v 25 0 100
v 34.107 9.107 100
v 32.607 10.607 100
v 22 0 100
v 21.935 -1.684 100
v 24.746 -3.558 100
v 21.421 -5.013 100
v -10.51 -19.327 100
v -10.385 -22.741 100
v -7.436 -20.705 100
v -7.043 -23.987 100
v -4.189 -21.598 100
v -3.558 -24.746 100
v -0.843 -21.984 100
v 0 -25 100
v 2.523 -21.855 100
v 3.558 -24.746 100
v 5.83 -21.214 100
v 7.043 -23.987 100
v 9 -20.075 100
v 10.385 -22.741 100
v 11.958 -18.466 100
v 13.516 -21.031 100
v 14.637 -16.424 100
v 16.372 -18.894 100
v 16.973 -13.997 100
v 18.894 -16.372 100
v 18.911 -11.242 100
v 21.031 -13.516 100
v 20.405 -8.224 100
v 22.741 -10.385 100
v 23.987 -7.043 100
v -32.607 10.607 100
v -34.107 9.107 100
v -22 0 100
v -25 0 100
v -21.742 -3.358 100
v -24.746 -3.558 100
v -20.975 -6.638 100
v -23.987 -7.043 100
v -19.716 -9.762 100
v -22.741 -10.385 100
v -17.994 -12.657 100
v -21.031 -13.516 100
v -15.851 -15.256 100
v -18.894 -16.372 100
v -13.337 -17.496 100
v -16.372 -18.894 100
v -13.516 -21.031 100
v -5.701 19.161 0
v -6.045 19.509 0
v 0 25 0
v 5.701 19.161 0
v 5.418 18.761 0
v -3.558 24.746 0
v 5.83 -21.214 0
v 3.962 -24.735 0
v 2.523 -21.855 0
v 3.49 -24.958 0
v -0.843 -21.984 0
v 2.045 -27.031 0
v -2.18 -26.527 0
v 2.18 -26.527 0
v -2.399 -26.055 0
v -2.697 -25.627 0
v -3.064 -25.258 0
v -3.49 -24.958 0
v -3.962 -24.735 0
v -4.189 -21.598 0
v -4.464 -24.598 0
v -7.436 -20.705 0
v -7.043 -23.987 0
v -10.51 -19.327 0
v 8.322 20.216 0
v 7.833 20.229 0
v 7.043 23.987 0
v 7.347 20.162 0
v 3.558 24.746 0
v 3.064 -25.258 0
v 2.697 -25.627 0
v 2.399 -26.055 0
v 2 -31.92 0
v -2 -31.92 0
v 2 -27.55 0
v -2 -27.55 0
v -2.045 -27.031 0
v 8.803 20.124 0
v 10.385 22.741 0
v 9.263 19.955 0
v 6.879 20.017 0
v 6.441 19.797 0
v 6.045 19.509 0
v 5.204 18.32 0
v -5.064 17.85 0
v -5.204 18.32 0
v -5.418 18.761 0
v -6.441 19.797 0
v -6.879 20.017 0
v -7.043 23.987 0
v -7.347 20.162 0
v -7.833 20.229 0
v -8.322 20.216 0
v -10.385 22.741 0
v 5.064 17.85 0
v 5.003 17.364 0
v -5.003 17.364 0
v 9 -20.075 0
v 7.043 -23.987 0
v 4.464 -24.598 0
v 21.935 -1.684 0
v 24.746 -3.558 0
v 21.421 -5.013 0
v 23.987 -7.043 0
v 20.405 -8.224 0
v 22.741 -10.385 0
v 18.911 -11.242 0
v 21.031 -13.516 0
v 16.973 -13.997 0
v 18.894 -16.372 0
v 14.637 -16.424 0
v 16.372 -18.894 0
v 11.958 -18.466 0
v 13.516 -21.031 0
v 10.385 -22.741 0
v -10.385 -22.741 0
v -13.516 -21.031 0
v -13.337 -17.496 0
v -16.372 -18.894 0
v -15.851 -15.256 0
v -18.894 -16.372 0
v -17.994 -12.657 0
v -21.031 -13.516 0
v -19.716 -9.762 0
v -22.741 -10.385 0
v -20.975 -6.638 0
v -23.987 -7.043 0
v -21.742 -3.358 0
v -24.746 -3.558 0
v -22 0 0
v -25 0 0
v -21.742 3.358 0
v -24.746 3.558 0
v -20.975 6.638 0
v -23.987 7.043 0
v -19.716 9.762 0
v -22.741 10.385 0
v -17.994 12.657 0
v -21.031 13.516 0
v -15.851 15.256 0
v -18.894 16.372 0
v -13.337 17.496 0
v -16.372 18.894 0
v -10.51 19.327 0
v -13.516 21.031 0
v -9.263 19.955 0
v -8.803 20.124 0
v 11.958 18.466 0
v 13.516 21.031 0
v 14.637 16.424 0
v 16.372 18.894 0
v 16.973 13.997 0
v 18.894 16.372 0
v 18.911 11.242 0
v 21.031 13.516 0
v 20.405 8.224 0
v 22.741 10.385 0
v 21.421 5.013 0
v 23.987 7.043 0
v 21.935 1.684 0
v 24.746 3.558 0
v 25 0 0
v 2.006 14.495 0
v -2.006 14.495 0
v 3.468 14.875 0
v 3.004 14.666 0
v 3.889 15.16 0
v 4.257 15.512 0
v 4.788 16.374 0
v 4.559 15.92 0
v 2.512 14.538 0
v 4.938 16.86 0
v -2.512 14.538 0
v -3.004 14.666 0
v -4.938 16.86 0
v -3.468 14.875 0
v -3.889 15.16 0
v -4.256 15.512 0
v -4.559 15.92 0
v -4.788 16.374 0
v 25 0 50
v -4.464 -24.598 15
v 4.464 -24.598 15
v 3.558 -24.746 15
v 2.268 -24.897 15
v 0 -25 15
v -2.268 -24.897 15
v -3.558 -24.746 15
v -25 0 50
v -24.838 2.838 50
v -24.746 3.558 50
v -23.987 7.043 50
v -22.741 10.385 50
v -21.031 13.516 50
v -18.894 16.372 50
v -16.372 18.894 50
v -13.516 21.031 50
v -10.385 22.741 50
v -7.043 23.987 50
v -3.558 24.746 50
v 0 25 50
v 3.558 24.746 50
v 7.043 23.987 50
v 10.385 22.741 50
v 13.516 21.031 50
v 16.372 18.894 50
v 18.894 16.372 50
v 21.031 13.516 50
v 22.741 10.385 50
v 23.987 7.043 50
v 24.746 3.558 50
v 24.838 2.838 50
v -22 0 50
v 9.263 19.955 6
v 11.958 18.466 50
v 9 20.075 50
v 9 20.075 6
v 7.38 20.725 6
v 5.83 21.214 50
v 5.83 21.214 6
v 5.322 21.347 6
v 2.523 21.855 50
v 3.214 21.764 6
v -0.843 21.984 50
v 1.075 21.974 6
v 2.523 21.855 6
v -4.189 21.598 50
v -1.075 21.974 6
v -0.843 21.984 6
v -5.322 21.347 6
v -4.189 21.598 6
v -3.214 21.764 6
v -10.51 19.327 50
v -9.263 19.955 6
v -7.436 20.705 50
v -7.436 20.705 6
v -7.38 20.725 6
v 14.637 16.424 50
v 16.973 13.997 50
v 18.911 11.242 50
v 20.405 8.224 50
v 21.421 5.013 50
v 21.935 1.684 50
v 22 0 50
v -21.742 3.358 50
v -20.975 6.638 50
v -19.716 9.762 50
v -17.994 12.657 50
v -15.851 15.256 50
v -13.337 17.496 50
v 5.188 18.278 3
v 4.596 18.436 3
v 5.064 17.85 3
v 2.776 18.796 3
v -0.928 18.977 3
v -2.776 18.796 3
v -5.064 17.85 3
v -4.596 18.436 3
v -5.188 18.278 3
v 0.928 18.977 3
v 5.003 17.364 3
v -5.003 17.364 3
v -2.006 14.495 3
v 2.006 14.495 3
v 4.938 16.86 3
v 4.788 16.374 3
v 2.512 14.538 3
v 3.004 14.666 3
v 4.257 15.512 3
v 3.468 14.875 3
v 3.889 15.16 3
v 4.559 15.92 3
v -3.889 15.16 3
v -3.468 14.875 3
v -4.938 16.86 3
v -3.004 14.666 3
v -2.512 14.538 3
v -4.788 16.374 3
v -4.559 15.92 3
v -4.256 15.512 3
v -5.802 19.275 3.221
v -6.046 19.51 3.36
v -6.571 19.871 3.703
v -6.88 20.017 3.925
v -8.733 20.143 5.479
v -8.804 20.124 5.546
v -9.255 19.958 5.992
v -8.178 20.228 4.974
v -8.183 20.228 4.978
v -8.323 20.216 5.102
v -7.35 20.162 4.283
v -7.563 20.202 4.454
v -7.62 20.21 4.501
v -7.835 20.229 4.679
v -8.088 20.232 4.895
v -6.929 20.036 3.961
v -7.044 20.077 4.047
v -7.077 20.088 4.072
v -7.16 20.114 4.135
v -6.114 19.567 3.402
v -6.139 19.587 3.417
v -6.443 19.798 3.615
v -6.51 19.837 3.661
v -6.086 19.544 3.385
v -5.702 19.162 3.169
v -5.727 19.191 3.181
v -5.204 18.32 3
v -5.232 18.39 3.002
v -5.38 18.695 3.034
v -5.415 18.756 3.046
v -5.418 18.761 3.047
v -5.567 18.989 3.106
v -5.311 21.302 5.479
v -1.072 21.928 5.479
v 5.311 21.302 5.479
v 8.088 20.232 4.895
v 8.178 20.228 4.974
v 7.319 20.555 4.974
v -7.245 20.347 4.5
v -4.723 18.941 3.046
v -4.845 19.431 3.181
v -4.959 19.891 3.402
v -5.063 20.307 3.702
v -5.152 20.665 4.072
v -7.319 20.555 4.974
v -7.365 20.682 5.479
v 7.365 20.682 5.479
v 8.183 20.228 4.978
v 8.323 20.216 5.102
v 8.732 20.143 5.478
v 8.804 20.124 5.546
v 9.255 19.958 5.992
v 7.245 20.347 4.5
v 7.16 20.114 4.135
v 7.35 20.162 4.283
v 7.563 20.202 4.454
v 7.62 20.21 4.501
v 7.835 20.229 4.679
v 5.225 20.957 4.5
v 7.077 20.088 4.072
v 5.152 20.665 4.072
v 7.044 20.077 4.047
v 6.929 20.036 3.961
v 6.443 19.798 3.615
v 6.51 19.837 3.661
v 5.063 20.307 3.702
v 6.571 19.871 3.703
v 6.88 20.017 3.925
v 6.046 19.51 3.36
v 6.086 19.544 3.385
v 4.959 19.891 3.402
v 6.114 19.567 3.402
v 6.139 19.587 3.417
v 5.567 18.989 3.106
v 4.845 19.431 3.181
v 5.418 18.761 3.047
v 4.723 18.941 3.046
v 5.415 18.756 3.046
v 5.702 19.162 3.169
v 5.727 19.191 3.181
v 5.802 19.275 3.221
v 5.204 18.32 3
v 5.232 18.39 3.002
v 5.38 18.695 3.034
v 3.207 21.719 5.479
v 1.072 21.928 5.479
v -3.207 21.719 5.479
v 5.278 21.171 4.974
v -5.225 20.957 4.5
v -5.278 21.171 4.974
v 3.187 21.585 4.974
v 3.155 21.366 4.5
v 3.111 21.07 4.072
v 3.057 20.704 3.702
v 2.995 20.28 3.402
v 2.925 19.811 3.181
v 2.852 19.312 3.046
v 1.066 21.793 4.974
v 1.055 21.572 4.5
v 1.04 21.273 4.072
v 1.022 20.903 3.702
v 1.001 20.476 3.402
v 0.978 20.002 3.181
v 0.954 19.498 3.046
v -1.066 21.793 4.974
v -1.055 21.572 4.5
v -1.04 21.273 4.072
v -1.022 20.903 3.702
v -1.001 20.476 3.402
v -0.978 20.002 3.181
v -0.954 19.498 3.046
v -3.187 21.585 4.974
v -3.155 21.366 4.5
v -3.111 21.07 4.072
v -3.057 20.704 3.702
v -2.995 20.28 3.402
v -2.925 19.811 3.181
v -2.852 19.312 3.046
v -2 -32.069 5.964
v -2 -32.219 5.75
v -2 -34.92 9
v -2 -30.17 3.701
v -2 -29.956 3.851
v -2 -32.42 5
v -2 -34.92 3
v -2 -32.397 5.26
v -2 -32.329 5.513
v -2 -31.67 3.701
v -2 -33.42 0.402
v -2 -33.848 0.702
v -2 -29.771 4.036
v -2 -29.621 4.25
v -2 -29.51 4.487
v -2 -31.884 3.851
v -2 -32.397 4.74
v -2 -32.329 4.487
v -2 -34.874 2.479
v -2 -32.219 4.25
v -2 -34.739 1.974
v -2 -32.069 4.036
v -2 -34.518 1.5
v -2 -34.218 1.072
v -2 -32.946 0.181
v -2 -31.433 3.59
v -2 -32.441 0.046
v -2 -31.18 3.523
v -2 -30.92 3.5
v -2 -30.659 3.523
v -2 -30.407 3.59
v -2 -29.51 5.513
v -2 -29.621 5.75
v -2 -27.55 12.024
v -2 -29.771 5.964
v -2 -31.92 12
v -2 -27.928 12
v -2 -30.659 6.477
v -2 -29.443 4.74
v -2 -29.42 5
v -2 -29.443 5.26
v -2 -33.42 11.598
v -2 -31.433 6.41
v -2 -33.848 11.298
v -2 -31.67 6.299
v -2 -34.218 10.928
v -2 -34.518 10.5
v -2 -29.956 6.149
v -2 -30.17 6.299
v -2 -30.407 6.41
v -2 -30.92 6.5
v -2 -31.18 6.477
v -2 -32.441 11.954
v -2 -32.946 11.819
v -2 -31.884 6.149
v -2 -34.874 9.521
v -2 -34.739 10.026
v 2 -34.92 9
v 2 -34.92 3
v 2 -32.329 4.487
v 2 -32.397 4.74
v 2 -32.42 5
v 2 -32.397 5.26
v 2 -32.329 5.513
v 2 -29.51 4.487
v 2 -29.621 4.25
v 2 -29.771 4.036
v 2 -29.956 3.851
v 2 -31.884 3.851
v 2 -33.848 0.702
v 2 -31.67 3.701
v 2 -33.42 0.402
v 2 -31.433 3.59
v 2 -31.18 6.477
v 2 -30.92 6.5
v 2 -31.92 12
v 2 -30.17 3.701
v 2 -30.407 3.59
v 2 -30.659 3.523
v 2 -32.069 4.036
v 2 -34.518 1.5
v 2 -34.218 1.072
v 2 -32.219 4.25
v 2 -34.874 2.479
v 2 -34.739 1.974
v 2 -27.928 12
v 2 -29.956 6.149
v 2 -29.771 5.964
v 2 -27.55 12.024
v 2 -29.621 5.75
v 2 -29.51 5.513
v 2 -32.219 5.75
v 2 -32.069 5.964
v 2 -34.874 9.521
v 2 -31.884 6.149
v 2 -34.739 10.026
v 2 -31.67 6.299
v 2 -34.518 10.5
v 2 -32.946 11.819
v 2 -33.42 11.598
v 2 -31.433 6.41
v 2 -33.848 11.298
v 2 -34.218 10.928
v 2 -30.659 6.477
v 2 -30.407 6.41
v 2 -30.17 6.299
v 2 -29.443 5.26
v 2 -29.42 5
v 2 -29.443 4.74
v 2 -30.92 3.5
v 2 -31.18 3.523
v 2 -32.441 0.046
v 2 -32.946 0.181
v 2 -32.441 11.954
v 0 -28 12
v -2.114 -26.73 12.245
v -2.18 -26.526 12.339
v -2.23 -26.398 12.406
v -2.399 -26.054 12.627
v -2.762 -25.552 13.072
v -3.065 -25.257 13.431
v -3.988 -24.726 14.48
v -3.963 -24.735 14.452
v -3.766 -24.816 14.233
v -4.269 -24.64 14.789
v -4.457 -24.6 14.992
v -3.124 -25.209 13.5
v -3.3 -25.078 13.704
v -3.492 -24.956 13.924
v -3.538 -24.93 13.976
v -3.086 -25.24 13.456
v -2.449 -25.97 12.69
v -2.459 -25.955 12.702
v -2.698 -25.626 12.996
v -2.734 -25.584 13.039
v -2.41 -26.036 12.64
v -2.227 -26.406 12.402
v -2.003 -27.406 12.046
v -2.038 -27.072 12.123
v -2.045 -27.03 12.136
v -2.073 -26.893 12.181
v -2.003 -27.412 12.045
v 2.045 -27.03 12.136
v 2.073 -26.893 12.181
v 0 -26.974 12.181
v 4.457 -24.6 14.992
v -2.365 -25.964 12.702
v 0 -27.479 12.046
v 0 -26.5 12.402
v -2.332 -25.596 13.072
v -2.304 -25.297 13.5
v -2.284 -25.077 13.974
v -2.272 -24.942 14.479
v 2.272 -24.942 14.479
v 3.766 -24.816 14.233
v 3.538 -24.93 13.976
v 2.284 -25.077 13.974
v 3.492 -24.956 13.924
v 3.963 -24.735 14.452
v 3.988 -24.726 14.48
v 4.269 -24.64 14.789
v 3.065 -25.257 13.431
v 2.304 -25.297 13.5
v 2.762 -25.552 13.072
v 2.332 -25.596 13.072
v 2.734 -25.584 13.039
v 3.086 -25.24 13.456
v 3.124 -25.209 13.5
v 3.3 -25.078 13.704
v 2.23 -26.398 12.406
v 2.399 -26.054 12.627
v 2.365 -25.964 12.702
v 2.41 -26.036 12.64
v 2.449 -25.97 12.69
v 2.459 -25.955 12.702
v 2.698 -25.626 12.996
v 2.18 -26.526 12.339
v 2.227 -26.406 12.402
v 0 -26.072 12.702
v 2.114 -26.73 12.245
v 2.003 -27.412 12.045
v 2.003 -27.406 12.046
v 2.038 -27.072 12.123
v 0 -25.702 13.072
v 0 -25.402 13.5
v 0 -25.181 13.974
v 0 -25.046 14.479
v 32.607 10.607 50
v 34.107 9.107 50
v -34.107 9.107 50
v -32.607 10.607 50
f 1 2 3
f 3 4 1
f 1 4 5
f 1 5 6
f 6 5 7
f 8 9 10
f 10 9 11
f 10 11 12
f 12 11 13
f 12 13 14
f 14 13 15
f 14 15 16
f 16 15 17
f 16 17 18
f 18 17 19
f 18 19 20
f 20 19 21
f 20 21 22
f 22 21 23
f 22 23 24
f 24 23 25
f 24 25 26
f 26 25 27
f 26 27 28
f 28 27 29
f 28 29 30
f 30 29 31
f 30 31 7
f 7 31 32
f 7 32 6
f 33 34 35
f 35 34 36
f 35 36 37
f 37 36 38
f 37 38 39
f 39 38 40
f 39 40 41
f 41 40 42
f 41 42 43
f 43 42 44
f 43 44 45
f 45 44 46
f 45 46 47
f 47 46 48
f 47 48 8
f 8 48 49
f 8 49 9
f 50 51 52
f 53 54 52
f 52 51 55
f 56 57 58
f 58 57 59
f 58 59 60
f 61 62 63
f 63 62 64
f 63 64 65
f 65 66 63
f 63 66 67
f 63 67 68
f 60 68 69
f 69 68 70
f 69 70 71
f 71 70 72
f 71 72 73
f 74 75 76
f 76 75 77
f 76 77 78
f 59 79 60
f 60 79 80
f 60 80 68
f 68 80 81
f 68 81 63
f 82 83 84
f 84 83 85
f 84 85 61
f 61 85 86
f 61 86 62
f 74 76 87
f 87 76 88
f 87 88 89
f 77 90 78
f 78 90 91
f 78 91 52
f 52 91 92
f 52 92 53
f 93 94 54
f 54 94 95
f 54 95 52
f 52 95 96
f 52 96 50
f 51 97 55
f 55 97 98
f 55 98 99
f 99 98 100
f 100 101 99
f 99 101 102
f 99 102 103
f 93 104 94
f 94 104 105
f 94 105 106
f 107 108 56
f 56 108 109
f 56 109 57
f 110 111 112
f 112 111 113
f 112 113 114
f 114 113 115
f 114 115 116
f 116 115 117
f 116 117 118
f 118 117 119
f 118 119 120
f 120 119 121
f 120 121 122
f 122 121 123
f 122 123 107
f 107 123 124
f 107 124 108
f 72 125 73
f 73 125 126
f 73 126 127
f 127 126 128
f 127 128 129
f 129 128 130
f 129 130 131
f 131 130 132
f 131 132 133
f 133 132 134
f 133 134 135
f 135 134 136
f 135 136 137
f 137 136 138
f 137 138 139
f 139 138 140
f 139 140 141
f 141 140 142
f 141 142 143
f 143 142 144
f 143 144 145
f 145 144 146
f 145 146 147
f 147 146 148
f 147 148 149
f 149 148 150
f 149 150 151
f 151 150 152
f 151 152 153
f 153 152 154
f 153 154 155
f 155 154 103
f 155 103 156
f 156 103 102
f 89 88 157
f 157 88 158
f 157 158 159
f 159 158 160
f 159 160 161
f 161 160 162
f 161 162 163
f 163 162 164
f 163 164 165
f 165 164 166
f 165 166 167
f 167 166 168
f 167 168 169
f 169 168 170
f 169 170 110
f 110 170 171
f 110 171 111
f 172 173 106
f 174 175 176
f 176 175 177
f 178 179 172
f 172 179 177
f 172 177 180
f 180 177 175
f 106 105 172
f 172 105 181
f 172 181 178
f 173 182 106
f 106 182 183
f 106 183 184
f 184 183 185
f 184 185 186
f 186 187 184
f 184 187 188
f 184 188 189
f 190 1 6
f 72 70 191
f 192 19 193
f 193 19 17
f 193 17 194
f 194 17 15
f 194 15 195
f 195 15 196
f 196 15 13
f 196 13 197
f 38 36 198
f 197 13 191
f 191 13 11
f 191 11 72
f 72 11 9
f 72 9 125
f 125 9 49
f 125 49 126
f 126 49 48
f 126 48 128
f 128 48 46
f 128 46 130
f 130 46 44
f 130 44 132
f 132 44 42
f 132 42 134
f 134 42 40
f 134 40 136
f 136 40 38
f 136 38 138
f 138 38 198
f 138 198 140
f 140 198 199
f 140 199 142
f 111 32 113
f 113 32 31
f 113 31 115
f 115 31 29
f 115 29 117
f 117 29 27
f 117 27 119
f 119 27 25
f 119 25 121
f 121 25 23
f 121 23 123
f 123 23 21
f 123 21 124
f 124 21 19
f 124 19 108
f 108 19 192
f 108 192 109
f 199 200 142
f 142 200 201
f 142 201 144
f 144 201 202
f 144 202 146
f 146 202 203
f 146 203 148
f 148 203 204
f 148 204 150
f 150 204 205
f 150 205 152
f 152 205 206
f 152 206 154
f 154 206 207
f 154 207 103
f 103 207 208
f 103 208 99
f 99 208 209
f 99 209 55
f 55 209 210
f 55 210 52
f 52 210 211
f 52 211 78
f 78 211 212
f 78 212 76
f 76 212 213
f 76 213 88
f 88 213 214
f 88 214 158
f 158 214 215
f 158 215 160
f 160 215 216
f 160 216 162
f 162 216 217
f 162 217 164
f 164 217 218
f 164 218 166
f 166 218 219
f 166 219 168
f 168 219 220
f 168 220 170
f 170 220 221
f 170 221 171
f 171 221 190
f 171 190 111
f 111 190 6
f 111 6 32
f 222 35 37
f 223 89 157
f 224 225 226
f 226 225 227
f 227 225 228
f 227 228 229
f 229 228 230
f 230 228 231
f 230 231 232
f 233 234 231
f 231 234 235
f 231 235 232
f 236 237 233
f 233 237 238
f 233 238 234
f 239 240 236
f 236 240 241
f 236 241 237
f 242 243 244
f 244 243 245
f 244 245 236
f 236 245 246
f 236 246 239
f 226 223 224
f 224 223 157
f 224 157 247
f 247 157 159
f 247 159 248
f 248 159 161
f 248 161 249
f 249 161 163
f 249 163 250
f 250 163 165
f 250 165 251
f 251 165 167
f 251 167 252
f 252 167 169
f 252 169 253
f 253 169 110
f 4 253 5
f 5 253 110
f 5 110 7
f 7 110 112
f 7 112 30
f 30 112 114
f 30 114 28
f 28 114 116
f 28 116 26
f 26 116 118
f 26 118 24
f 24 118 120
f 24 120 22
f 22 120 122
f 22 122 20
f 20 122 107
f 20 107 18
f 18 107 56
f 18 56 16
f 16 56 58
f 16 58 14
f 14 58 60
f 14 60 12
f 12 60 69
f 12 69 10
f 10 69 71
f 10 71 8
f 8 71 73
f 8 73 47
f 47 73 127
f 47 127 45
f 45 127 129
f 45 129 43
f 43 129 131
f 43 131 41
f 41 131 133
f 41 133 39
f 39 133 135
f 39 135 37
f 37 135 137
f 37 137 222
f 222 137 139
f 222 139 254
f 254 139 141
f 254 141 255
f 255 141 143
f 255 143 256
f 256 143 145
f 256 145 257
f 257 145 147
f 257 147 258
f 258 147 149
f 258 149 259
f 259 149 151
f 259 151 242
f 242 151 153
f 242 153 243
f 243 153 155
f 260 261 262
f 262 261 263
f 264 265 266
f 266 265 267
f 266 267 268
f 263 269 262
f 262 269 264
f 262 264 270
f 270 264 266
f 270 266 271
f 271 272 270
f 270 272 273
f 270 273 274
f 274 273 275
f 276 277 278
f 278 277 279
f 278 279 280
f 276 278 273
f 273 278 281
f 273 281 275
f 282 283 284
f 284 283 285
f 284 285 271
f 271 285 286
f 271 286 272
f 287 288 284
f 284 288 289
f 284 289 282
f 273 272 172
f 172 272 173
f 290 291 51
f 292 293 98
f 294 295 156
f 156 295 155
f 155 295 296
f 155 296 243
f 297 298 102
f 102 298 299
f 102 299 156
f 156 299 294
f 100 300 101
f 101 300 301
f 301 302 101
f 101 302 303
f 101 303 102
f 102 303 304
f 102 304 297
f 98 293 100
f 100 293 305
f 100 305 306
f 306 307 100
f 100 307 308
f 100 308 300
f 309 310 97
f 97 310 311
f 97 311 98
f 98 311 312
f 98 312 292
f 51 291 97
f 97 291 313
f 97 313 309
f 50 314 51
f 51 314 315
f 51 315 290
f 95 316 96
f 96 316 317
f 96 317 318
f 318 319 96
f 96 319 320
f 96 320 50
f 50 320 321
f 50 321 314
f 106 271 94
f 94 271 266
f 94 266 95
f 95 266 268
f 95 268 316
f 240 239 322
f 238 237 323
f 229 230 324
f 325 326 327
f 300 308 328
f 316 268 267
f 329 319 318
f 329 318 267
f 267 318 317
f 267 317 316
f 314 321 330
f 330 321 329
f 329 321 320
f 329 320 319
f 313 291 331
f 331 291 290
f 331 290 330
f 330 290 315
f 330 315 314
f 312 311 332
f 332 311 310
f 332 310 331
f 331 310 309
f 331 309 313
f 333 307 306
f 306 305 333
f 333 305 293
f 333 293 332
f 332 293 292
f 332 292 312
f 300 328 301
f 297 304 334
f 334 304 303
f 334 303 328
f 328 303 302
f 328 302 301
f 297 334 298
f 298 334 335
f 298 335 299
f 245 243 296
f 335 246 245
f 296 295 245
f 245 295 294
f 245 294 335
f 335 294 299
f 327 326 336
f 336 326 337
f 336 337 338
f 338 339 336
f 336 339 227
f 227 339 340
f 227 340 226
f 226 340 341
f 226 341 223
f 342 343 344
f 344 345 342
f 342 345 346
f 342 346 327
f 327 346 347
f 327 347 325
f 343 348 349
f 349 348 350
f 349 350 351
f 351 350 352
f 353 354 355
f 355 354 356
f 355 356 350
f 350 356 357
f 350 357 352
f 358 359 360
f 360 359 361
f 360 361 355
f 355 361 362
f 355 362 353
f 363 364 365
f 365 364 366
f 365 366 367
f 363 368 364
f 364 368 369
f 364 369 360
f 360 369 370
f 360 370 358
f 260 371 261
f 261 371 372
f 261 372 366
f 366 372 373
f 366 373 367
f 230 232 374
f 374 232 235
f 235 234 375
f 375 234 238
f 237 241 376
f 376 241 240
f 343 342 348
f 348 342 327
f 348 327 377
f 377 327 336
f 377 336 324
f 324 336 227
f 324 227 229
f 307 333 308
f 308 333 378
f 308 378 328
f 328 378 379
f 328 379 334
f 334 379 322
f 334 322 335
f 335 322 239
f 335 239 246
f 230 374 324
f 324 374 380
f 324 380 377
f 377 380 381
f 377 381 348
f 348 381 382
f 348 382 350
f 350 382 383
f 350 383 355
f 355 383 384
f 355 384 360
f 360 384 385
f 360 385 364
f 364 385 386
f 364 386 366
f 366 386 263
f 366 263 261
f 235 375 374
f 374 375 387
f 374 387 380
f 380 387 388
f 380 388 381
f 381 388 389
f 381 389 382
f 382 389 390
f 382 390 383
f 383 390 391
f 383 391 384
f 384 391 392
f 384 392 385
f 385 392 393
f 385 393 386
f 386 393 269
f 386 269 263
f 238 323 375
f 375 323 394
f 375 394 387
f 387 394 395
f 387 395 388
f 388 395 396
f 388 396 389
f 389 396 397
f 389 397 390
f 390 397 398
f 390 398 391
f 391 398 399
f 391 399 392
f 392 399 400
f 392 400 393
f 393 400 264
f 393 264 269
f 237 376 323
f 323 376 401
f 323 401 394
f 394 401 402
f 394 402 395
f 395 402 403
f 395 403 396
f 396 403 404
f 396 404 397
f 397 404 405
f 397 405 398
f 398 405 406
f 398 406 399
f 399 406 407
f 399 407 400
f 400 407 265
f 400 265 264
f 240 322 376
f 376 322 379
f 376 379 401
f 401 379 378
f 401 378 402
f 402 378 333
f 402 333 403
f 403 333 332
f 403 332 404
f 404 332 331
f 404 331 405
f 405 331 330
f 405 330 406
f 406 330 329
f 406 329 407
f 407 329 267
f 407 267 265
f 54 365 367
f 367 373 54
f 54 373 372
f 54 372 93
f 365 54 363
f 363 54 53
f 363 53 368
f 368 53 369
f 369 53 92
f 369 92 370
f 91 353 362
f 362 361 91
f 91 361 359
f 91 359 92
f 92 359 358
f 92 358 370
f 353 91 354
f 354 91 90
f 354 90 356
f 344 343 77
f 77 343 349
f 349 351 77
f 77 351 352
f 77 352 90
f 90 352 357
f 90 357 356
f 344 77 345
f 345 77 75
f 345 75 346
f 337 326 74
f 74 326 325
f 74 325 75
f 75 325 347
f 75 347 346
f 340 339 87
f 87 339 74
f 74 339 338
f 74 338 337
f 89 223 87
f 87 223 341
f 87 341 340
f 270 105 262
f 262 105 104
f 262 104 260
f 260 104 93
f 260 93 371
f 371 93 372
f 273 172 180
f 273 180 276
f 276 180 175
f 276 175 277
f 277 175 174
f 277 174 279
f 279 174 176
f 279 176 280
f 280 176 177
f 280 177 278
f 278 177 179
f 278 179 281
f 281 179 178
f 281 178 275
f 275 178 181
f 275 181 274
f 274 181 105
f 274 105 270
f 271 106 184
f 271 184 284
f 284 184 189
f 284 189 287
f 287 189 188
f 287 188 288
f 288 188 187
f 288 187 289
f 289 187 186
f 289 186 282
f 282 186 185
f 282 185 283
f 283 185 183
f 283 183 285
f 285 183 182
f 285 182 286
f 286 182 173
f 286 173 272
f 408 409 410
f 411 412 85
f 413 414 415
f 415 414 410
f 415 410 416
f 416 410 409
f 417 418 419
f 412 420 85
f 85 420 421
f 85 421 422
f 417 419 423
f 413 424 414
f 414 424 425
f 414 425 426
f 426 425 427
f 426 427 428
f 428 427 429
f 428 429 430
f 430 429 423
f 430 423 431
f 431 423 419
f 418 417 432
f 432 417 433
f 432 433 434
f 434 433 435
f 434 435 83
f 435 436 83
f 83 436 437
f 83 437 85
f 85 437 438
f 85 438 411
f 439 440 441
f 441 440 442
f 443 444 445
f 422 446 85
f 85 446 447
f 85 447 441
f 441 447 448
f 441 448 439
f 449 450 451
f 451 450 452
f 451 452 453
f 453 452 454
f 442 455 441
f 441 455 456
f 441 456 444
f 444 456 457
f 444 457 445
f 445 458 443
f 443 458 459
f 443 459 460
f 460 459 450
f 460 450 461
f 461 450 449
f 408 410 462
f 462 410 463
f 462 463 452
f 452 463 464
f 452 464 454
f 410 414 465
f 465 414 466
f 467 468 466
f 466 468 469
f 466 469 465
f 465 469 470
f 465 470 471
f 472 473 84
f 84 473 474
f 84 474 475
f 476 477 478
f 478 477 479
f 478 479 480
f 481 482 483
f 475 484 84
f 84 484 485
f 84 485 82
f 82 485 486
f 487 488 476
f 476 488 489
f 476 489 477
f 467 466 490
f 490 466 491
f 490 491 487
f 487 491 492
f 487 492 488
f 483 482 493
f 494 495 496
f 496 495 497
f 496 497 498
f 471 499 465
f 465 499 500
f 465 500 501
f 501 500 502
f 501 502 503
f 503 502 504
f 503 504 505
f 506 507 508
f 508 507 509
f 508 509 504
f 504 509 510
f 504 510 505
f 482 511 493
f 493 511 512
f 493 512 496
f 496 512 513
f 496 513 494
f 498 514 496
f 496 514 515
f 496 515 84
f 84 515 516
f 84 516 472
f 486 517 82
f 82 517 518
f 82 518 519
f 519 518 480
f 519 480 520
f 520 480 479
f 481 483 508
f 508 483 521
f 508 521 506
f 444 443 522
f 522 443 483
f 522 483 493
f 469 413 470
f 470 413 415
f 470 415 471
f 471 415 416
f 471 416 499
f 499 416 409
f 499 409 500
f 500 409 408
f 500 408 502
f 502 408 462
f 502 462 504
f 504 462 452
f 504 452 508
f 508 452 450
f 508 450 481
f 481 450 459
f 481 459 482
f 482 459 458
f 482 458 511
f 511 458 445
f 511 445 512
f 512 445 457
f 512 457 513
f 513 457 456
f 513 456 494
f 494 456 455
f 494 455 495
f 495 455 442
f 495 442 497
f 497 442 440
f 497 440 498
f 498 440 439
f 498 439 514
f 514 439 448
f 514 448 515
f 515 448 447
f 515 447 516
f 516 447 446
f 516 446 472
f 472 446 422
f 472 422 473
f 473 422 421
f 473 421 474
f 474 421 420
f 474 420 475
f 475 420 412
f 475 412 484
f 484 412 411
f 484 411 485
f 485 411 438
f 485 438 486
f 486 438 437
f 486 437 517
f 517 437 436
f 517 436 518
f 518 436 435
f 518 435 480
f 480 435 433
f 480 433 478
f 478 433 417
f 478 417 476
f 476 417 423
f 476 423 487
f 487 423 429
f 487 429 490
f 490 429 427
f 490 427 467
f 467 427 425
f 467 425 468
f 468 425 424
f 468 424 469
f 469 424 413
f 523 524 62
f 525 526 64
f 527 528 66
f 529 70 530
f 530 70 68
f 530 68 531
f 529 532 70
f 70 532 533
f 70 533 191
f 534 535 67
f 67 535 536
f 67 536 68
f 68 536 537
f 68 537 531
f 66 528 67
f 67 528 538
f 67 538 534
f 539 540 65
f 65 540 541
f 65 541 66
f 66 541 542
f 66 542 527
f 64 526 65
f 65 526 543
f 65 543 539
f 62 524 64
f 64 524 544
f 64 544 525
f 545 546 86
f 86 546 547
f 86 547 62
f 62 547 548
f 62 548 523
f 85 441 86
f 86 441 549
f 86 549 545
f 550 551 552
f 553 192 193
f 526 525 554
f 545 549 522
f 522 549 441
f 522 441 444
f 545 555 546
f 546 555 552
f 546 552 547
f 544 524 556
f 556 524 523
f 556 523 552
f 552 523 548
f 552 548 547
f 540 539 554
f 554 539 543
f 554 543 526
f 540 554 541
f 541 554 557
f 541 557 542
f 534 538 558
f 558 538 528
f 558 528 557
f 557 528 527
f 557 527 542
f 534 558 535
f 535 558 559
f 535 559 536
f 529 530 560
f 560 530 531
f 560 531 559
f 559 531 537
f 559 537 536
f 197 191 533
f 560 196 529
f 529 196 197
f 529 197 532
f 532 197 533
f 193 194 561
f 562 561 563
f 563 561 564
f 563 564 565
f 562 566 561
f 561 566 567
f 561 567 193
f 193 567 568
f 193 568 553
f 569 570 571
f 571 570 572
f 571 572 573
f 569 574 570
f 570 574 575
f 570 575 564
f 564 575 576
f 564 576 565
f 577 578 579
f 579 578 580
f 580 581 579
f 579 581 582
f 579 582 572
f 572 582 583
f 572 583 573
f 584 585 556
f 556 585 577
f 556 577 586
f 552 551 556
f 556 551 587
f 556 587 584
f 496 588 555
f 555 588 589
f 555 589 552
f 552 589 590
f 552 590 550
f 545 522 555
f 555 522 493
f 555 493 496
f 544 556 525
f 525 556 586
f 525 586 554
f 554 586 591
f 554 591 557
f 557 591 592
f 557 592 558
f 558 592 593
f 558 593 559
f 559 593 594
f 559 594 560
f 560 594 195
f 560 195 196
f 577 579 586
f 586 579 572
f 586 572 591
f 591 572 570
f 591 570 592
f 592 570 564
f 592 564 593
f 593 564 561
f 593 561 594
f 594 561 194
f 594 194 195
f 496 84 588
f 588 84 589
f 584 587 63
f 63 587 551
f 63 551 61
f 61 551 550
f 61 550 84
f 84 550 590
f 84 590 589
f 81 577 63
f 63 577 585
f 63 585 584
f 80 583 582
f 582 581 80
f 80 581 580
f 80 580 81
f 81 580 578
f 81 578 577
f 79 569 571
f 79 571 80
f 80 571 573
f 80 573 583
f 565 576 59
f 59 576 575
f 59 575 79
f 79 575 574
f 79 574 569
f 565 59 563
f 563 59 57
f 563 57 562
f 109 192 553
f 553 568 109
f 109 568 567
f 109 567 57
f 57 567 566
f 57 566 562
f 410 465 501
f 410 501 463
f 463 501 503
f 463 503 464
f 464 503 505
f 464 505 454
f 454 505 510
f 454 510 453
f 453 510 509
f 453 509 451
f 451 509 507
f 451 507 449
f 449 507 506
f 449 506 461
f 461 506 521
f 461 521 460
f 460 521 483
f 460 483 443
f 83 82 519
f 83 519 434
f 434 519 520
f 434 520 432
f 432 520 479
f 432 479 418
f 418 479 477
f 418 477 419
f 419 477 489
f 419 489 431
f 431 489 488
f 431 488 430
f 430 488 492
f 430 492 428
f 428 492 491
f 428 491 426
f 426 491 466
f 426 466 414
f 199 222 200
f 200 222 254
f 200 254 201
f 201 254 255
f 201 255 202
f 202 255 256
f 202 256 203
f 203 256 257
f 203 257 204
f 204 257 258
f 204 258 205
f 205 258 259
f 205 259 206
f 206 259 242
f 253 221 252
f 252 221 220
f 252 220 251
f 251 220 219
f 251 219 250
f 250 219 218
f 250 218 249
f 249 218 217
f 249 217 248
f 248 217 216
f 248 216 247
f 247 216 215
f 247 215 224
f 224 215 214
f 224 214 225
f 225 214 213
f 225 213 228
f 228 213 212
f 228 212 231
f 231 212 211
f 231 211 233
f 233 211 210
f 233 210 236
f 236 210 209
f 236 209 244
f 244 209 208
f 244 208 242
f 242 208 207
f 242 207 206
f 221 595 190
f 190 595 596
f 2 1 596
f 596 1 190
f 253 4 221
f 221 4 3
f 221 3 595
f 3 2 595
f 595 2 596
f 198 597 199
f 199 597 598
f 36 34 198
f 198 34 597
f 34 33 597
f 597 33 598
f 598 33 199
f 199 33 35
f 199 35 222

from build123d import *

# Parameters (mm, degrees)
SKETCH1_R           = 25
SKETCH1_R_2         = 22
BOSS_EXTRUDE1_DEPTH = 100
SKETCH2_W           = 10
SKETCH2_H           = 10
BOSS_EXTRUDE3_DEPTH = 3
FILLET2_R           = 3
FILLET3_R           = 3
SKETCH3_W           = 4
SKETCH3_H           = 10
BOSS_EXTRUDE4_DEPTH = 12
CUT_EXTRUDE1_REACH  = 111.309
SKETCH4_R           = 1.5
FILLET4_R           = 3
SKETCH5_W           = 63.273881994
SKETCH5_H           = 26.217893921
CUT_EXTRUDE2_DEPTH  = 50
BOSS_EXTRUDE5_DEPTH = 50


with BuildPart() as part:
    # Sketch1 → Boss-Extrude1 (new body)
    with BuildSketch(Plane.XY):
        Circle(SKETCH1_R)
        Circle(SKETCH1_R_2, mode=Mode.SUBTRACT)
    extrude(amount=BOSS_EXTRUDE1_DEPTH)

    # Sketch2 → Boss-Extrude3 (add)
    with BuildSketch(Plane(origin=(0, 0, 0), x_dir=(-1, 0, 0), z_dir=(0, 0, -1))):
        with Locations((0, 19.494897428)):
            Rectangle(SKETCH2_W, SKETCH2_H)
    extrude(amount=-BOSS_EXTRUDE3_DEPTH)

    # Fillet2
    # the kernel refuses this fillet: 3 mm, written as the material it adds along each edge
    with BuildSketch(Plane(origin=(0, 0, 3), x_dir=(-0.5397978604012739, 0.8417946720585768, 0), z_dir=(-0.8417946720585768, -0.5397978604012739, 0))) as fillet2_piece_1_section:
        with BuildLine():
            CenterArc((22 - FILLET2_R, -FILLET2_R), FILLET2_R, 0, 90)
            Line((22 - FILLET2_R, 0), (22, 0))
            Line((22, 0), (22, -FILLET2_R))
        make_face()
    fillet2_piece_1 = revolve(axis=Axis((0, 0, 3), (0, 0, -1)), revolution_arc=65.339758778, mode=Mode.PRIVATE)
    fillet2_piece_1 = split(fillet2_piece_1, bisect_by=Plane(origin=(5, 21.121644808, 3.678956026), z_dir=(-1, 0, 0)), keep=Keep.TOP, mode=Mode.PRIVATE)
    fillet2_piece_1 = split(fillet2_piece_1, bisect_by=Plane(origin=(-5, 21.121644808, 3.678956026), z_dir=(1, 0, 0)), keep=Keep.TOP, mode=Mode.PRIVATE)
    add(fillet2_piece_1)
    with BuildSketch(Plane(origin=(5, 21.424285286, 3), x_dir=(0.9454116384931546, -0.32587855683013084, 0), z_dir=(0, 0, -1))) as fillet2_piece_2:
        with BuildLine():
            CenterArc((4.201860731, 2.984203833), FILLET2_R, 160.981189421, 114.90106237)
            Line((1.365625815, 3.961839503), (0, 0))
            ThreePointArc((0, 0), (2.254656978, -0.11583856), (4.509313955, 0))
        make_face()
    extrude(amount=3)
    with BuildSketch(Plane(origin=(-5, 21.424285286, 3), x_dir=(-0.9454116384931545, -0.325878556830131, 0), z_dir=(0, 0, -1))) as fillet2_piece_3:
        with BuildLine():
            CenterArc((4.201860731, -2.984203833), FILLET2_R, 84.117748208, 114.90106237)
            Line((1.365625815, -3.961839503), (0, 0))
            ThreePointArc((0, 0), (2.254656978, 0.11583856), (4.509313955, 0))
        make_face()
    extrude(amount=3)
    with BuildSketch(Plane(origin=(0, 0, 3), x_dir=(-0.5397978604012739, 0.8417946720585768, 0), z_dir=(-0.8417946720585768, -0.5397978604012739, 0))) as fillet2_piece_4a_section:
        with BuildLine():
            CenterArc((22 - FILLET2_R, -FILLET2_R), FILLET2_R, 0, 90)
            Line((22 - FILLET2_R, 0), (22, 0))
            Line((22, 0), (22, -FILLET2_R))
        make_face()
    fillet2_piece_4a = revolve(axis=Axis((0, 0, 3), (0, 0, -1)), revolution_arc=65.339758778, mode=Mode.PRIVATE)
    fillet2_piece_4a = split(fillet2_piece_4a, bisect_by=Plane(origin=(-5, 19.550370475, 3.699165733), z_dir=(-1, 0, 0)), keep=Keep.TOP, mode=Mode.PRIVATE)
    with BuildSketch(Plane(origin=(-5, 21.424285286, 14.273284888), x_dir=(-0.9454116384931546, -0.3258785568301304, 0), z_dir=(0, 0, -1))) as fillet2_piece_4b_section:
        with BuildLine():
            CenterArc((4.201860731, -2.984203833), FILLET2_R, 84.117748208, 114.90106237)
            Line((1.365625815, -3.961839503), (0, 0))
            ThreePointArc((0, 0), (2.254656978, 0.11583856), (4.509313955, 0))
        make_face()
    fillet2_piece_4b = extrude(amount=14.273284888, mode=Mode.PRIVATE)
    fillet2_piece_4b = split(fillet2_piece_4b, bisect_by=Plane(origin=(-6.027024326, 20.156097629, 3), z_dir=(0, 0, 1)), keep=Keep.TOP, mode=Mode.PRIVATE)
    fillet2_piece_4 = fillet2_piece_4a & fillet2_piece_4b
    add(fillet2_piece_4)
    with BuildSketch(Plane(origin=(5, 21.424285286, 14.273284888), x_dir=(0.9454116384931546, -0.32587855683013073, 0), z_dir=(0, 0, -1))) as fillet2_piece_5a_section:
        with BuildLine():
            CenterArc((4.201860731, 2.984203833), FILLET2_R, 160.981189421, 114.90106237)
            Line((1.365625815, 3.961839503), (0, 0))
            ThreePointArc((0, 0), (2.254656978, -0.11583856), (4.509313955, 0))
        make_face()
    fillet2_piece_5a = extrude(amount=14.273284888, mode=Mode.PRIVATE)
    fillet2_piece_5a = split(fillet2_piece_5a, bisect_by=Plane(origin=(6.027024326, 20.156097629, 3), z_dir=(0, 0, 1)), keep=Keep.TOP, mode=Mode.PRIVATE)
    with BuildSketch(Plane(origin=(0, 0, 3), x_dir=(-0.5397978604012739, 0.8417946720585768, 0), z_dir=(-0.8417946720585768, -0.5397978604012739, 0))) as fillet2_piece_5b_section:
        with BuildLine():
            CenterArc((22 - FILLET2_R, -FILLET2_R), FILLET2_R, 0, 90)
            Line((22 - FILLET2_R, 0), (22, 0))
            Line((22, 0), (22, -FILLET2_R))
        make_face()
    fillet2_piece_5b = revolve(axis=Axis((0, 0, 3), (0, 0, -1)), revolution_arc=65.339758778, mode=Mode.PRIVATE)
    fillet2_piece_5b = split(fillet2_piece_5b, bisect_by=Plane(origin=(5, 19.550370668, 3.699165846), z_dir=(1, 0, 0)), keep=Keep.TOP, mode=Mode.PRIVATE)
    fillet2_piece_5 = fillet2_piece_5a & fillet2_piece_5b
    add(fillet2_piece_5)

    # Fillet3
    fillet3_edges = [part.edges().sort_by_distance(p)[0] for p in [
        (-5, 14.494897428, 1.5),
        (5, 14.494897428, 1.5),
    ]]
    fillet(fillet3_edges, radius=FILLET3_R)

    # Sketch3 → Boss-Extrude4 (add)
    with BuildSketch(Plane(origin=(0, 0, 0), x_dir=(-1, 0, 0), z_dir=(0, 0, -1))):
        with Locations((0, -29.919871589)):
            Rectangle(SKETCH3_W, SKETCH3_H)
    extrude(amount=-BOSS_EXTRUDE4_DEPTH)

    # Sketch4 → Cut-Extrude1 (cut, up to next)
    with BuildSketch(Plane.ZY.offset(2), mode=Mode.PRIVATE) as cut_extrude1_sk1:
        with Locations(Location((5, -30.919871589, 0), (0, 0, 270))):
            Circle(SKETCH4_R)
    cut_extrude1_tool1 = extrude(cut_extrude1_sk1.sketch, amount=-CUT_EXTRUDE1_REACH, mode=Mode.PRIVATE) & part.part
    add(cut_extrude1_tool1.solids().sort_by_distance((-2, -30.919872, 5))[0], mode=Mode.SUBTRACT)

    # Fillet4
    fillet4_edges = [part.edges().sort_by_distance(p)[0] for p in [
        (0, -25, 12),
        (-2, -24.919871589, 6),
        (0, -34.919871589, 12),
        (2, -24.919871589, 6),
        (0, -34.919871589, 0),
    ]]
    fillet(fillet4_edges, radius=FILLET4_R)

    # Sketch5 → Cut-Extrude2 (cut)
    with BuildSketch(Plane.XY.offset(100)):
        with Locations((0, 13.108946961)):
            Rectangle(SKETCH5_W, SKETCH5_H)
    extrude(amount=-CUT_EXTRUDE2_DEPTH, mode=Mode.SUBTRACT)

    # Sketch8 → Boss-Extrude5 (add)
    with BuildSketch(Plane.XY.offset(100)):
        Polygon((25, 0), (22, 0), (32.606601718, 10.606601718), (34.106601718, 9.106601718), align=None)
        Polygon((-25, 0), (-22, 0), (-32.606601718, 10.606601718), (-34.106601718, 9.106601718), align=None)
    extrude(amount=-BOSS_EXTRUDE5_DEPTH)


solid = part.part
